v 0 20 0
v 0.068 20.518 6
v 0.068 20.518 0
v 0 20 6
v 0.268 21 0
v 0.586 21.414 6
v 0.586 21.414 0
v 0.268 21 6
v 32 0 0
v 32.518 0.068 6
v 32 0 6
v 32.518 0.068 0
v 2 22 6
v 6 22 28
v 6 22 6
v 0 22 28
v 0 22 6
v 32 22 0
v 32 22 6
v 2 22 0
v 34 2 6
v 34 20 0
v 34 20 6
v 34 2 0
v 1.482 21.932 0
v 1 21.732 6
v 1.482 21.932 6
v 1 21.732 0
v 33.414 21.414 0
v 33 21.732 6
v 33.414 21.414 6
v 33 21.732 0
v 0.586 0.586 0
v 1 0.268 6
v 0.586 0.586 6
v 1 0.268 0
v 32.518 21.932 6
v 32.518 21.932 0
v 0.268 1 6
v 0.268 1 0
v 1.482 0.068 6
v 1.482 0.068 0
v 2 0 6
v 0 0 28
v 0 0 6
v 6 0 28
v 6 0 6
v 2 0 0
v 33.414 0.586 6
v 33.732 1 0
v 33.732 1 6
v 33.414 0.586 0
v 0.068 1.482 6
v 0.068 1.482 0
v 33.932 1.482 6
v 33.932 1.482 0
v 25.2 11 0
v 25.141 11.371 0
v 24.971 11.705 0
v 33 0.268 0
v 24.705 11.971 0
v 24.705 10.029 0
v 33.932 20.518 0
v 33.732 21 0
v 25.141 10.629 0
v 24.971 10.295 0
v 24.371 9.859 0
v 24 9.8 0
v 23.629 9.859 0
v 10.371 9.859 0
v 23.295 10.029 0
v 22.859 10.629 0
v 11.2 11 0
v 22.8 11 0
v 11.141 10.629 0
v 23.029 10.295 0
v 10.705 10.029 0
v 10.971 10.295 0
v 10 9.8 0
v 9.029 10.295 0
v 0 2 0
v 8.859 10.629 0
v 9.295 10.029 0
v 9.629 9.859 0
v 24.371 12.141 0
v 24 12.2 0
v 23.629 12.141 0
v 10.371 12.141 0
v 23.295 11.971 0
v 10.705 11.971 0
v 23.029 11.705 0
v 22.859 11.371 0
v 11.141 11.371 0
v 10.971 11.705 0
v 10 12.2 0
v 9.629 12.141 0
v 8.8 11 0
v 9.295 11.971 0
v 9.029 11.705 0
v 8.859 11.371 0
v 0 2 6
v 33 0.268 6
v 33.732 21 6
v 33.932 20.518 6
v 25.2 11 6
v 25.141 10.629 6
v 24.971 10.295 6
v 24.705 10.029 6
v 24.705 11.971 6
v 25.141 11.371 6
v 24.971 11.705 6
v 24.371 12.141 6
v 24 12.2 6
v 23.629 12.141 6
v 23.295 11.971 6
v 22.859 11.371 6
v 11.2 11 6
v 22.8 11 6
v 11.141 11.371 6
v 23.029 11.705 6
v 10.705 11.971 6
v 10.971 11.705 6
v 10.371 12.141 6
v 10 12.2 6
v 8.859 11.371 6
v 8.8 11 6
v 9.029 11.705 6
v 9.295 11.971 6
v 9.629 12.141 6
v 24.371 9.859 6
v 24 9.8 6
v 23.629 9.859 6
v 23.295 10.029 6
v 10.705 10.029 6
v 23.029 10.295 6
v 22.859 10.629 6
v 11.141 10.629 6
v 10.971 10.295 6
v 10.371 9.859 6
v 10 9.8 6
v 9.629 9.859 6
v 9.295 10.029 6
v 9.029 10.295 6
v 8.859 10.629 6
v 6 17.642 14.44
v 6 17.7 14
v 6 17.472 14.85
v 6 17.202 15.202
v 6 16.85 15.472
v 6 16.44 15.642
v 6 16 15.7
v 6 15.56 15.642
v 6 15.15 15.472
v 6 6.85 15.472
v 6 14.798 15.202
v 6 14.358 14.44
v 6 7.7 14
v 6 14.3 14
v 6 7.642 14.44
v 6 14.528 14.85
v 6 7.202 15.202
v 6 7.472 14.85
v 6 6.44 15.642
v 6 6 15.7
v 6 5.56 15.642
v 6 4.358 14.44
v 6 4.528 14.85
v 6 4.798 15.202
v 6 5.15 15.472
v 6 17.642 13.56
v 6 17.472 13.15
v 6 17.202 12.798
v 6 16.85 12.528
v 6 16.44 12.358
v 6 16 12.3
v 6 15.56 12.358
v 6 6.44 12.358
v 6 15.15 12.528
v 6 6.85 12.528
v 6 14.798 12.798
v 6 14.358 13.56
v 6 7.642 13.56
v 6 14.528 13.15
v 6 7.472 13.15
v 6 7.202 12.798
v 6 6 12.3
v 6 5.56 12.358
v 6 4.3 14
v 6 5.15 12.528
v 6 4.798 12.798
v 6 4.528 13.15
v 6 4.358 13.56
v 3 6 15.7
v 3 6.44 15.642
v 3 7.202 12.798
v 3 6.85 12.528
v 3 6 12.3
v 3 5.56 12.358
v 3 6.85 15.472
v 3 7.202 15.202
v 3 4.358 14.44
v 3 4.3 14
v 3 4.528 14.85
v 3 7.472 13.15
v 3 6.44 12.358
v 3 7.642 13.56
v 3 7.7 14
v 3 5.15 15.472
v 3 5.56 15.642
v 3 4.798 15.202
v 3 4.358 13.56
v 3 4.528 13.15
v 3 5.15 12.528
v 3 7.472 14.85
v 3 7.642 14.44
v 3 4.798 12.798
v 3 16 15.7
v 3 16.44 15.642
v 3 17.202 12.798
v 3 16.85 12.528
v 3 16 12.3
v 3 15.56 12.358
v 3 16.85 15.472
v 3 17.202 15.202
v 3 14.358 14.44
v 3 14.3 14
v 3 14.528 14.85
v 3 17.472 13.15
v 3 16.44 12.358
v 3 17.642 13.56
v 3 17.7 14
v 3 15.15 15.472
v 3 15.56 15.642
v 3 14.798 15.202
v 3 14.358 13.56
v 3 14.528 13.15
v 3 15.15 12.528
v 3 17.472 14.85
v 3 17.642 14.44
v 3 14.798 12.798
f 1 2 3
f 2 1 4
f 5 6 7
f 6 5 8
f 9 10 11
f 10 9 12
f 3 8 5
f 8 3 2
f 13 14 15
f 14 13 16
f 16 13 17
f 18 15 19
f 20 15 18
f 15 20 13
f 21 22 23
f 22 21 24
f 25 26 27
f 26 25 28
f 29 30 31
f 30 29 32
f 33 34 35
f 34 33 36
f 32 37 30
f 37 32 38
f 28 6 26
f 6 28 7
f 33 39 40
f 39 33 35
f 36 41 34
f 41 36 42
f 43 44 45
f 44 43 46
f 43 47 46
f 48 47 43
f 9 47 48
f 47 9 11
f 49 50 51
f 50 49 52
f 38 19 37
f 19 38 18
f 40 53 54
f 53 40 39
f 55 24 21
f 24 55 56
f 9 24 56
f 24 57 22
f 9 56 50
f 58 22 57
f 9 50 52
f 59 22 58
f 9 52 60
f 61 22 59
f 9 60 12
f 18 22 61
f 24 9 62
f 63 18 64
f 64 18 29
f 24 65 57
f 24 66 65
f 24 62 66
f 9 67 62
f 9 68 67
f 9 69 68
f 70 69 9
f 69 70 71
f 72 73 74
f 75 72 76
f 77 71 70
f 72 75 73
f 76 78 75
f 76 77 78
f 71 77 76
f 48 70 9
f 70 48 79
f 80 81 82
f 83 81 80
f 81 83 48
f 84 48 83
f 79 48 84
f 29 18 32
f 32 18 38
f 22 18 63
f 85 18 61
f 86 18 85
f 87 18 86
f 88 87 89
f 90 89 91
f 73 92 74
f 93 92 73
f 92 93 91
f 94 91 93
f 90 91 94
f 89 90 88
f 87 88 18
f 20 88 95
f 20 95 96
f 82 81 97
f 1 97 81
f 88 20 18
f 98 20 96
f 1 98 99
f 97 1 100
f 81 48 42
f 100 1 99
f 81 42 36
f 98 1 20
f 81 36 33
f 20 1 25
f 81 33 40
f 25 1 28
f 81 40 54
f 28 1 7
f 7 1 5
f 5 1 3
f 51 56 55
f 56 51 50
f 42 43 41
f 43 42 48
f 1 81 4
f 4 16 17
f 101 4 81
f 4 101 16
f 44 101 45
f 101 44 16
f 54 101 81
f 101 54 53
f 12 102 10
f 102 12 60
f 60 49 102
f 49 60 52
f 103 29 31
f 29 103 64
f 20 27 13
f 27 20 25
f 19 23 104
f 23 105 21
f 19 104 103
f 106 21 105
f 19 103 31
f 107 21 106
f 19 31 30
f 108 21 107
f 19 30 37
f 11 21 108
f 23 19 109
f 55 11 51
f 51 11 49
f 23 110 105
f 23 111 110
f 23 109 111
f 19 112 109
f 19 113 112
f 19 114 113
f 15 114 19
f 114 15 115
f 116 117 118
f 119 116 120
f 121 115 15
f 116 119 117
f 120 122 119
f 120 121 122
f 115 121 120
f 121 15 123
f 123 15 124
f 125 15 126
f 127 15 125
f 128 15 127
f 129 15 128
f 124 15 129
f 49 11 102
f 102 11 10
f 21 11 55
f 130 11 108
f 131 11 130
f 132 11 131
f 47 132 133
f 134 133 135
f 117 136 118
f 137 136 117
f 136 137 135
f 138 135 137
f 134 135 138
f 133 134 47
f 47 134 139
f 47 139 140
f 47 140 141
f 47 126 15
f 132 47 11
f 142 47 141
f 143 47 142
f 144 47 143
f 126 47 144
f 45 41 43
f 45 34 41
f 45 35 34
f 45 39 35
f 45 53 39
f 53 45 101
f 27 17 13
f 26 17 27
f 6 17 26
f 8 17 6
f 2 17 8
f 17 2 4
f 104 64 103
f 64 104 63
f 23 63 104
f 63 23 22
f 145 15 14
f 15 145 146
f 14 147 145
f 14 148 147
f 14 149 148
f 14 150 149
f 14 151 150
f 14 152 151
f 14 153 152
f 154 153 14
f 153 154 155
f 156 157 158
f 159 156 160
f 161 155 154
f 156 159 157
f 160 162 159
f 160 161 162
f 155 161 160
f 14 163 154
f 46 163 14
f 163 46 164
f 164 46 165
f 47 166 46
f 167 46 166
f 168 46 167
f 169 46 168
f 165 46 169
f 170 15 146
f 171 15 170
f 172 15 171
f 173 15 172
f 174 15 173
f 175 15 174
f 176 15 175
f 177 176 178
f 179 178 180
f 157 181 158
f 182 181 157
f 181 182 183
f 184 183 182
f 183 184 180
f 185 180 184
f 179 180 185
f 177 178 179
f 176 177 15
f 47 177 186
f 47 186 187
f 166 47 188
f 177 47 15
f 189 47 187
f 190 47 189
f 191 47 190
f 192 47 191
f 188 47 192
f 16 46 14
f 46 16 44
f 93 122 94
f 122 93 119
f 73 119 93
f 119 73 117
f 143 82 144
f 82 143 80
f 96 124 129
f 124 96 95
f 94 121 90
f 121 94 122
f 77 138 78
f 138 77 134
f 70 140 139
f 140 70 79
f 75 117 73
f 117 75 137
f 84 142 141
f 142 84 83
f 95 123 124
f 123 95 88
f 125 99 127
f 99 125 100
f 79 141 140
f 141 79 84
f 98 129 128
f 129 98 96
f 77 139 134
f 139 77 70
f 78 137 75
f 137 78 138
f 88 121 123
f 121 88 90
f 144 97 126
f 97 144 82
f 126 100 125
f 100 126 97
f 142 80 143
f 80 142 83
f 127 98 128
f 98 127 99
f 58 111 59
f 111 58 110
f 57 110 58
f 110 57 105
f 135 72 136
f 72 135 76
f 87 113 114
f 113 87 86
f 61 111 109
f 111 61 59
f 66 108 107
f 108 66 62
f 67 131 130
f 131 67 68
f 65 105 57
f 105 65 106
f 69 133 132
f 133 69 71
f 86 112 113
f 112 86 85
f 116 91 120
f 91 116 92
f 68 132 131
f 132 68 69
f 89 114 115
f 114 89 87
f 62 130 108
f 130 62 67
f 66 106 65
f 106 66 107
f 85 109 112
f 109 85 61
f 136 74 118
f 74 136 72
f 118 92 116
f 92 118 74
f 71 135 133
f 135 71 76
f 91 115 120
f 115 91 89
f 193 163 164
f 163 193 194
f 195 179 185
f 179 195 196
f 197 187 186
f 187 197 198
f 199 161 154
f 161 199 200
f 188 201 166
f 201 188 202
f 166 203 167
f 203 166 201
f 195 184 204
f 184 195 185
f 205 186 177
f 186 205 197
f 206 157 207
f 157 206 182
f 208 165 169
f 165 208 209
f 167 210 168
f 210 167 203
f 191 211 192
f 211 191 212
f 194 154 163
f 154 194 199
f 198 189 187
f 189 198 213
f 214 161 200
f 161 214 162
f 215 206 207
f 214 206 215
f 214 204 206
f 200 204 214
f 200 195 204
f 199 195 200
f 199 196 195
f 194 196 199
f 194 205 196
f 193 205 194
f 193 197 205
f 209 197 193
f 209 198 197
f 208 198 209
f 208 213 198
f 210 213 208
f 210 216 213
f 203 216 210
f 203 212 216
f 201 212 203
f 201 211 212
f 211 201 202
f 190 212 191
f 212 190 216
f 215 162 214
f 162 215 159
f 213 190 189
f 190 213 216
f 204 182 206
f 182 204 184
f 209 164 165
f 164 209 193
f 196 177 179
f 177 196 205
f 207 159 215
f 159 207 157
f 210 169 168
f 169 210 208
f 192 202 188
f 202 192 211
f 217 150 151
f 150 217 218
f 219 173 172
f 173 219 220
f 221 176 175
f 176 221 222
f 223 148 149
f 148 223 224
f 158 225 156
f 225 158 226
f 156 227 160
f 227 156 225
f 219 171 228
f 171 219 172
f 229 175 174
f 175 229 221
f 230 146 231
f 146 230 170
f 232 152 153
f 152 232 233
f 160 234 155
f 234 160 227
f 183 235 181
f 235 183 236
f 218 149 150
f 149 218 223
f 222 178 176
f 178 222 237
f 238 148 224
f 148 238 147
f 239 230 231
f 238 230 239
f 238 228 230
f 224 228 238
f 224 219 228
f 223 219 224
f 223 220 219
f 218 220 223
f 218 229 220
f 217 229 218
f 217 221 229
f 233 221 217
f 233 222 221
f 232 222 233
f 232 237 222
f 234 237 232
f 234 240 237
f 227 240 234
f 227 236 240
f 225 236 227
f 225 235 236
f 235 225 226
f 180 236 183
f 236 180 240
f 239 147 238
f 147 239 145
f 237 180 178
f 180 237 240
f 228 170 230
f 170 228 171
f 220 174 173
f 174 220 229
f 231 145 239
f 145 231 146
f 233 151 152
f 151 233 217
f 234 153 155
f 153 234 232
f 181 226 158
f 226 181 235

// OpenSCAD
// file: 00_parameters.scad
// TenderCells DoorCell V1 shared parameters
// Units: millimeters

overall_w = 438;
overall_h = 368;
frame_depth = 56;

clear_w = 242;
clear_h = 312;

rail_thick = 32;
jamb_w = 48;
motor_jamb_w = 78;

// Printability targets
target_bed_xy = 220;
comfortable_part_max = 180;

// Modular frame split dimensions
top_seg_len = overall_w / 3;
bottom_seg_len = overall_w / 3;
left_jamb_seg_h = overall_h / 2;
right_lower_h = 118;
right_motor_h = 156;
right_upper_h = overall_h - right_lower_h - right_motor_h;

// Low-cost electronics envelope used by DoorCell V1.4.
// These dimensions are based on common generic modules, not a custom PCB.
esp32_board = [58, 31, 8];
drv8871_board = [31, 26, 7];
current_sensor_board = [26, 22, 7];
lm2596_board = [44, 22, 14];
inline_fuse_body = [45, 15, 14];
cn3065_board = [44, 24, 8];
electronics_clearance = 1.5;
controller_wall = 3;
controller_box_w = 170;
controller_box_h = 115;
controller_box_d = 46;
controller_lid_insert_offset = 11;
controller_m12_gland_d = 12.8;
controller_m10_gland_d = 10.6;
controller_m8_gland_d = 8.4;
controller_button_d = 16.2;

// Brass heat-set/push-in insert features.
insert_post_d = 8.0;
insert_post_h = 8.0;
insert_pilot_d = 4.6;
insert_pilot_depth = 6.5;
hold_down_screw_clearance = 3.4;

// Motor envelope for common 25GA/JGA25-370 gearmotors with optional encoder.
motor_body_d = 25.0;
motor_body_clearance_d = 27.2;
motor_body_len = 65;
motor_encoder_clearance = 16;
motor_mount_plate = [72, 92, 12];
motor_mount_cradle = [54, 74, 28];

// Optional solar add-on.
solar_panel_w = 145;
solar_panel_h = 145;
solar_panel_t = 4.0;
solar_panel_frame_border = 10;
solar_panel_frame_w = solar_panel_w + 2*solar_panel_frame_border;
solar_panel_frame_h = solar_panel_h + 2*solar_panel_frame_border;
solar_panel_back_depth = 14;
solar_panel_lip_overlap = 3;
solar_ball_d = 22;
solar_ball_socket_clearance = 0.45;
solar_mount_m5 = 5.4;

// Tongue-and-groove frame joints
// Fit target: common FDM printers with PETG/ASA.
// Clearance is per side, so sockets add 2x this value.
tongue_len = 18;
tongue_w = 22;
tongue_z = 10;
tongue_clearance_side = 0.25;
tongue_socket_depth_extra = 0.60;

door_w = 270;
door_h = 326;
door_t = 8;

track_gap = 11;
track_depth = 12;

// Rack-and-pinion drive
// Metric module gear math:
// circular_pitch = PI * module
// pitch_diameter = module * tooth_count
// outside_diameter = module * (tooth_count + 2)
// root_diameter = module * (tooth_count - 2.5)
gear_module = 2.0;
pressure_angle = 20;
gear_backlash = 0.20; // mm removed from rack tooth thickness at pitch line

pinion_teeth = 16;
pinion_pitch_d = gear_module * pinion_teeth;
pinion_pitch_radius = pinion_pitch_d / 2;
pinion_outer_d = gear_module * (pinion_teeth + 2);
pinion_outer_radius = pinion_outer_d / 2;
pinion_root_d = gear_module * (pinion_teeth - 2.5);
pinion_root_radius = pinion_root_d / 2;
pinion_thick = 12;
shaft_d = 6.2;

rack_tooth_count = 15;
rack_circular_pitch = 3.141592653589793 * gear_module;
rack_len = rack_circular_pitch * rack_tooth_count;
rack_w = 18;
rack_t = 6;
rack_addendum = gear_module;
rack_dedendum = 1.25 * gear_module;
rack_tooth_h = rack_addendum + rack_dedendum;
rack_pitch_line_z = rack_dedendum;
rack_tooth_pitch_thickness = rack_circular_pitch / 2 - gear_backlash;
rack_tooth_top_w = rack_tooth_pitch_thickness - 2 * rack_addendum * tan(pressure_angle);
rack_tooth_root_w = rack_tooth_pitch_thickness + 2 * rack_dedendum * tan(pressure_angle);

screw_m3 = 3.4;
screw_m4 = 4.5;
insert_m3 = 4.6;

eps = 0.01;

module rounded_box(size=[10,10,10], r=2) {
  hull() {
    translate([r,r,0]) cylinder(h=size[2], r=r, $fn=24);
    translate([size[0]-r,r,0]) cylinder(h=size[2], r=r, $fn=24);
    translate([r,size[1]-r,0]) cylinder(h=size[2], r=r, $fn=24);
    translate([size[0]-r,size[1]-r,0]) cylinder(h=size[2], r=r, $fn=24);
  }
}

module m3_clearance_hole(h=20) {
  cylinder(h=h, d=screw_m3, $fn=24);
}

module m4_clearance_hole(h=20) {
  cylinder(h=h, d=screw_m4, $fn=24);
}

module heat_insert_hole(h=6) {
  cylinder(h=h, d=insert_m3, $fn=24);
}

module heat_insert_post(h=insert_post_h, d=insert_post_d) {
  difference() {
    cylinder(h=h, d=d, $fn=32);
    translate([0,0,h-insert_pilot_depth+eps])
      cylinder(h=insert_pilot_depth+eps, d=insert_pilot_d, $fn=24);
  }
}

module m3_hold_down_slot(length=10, h=4) {
  hull() {
    translate([-length/2,0,0]) cylinder(h=h, d=hold_down_screw_clearance, $fn=20);
    translate([ length/2,0,0]) cylinder(h=h, d=hold_down_screw_clearance, $fn=20);
  }
}

module rail_channel(length=100) {
  cube([length, track_gap, track_depth]);
}

module frame_tongue_x() {
  rounded_box([tongue_len, tongue_w, tongue_z], r=1.5);
}

module frame_socket_x() {
  cube([
    tongue_len + tongue_socket_depth_extra,
    tongue_w + 2*tongue_clearance_side,
    tongue_z + 2*tongue_clearance_side
  ]);
}

module frame_tongue_y() {
  rounded_box([tongue_w, tongue_len, tongue_z], r=1.5);
}

module frame_socket_y() {
  cube([
    tongue_w + 2*tongue_clearance_side,
    tongue_len + tongue_socket_depth_extra,
    tongue_z + 2*tongue_clearance_side
  ]);
}

module rack_teeth(len=rack_len) {
  teeth = floor(len / rack_circular_pitch);
  for (i=[0:teeth-1]) {
    center = i*rack_circular_pitch + rack_circular_pitch/2;
    translate([0, 0, rack_t-0.20])
      linear_extrude(height=rack_w)
        polygon(points=[
          [center - rack_tooth_root_w/2, 0],
          [center + rack_tooth_root_w/2, 0],
          [center + rack_tooth_top_w/2, rack_tooth_h],
          [center - rack_tooth_top_w/2, rack_tooth_h]
        ]);
  }
}

function polar_point(r, a) = [r * cos(a), r * sin(a)];
// main file
include <00_parameters.scad>

difference() {
  union() {
    rounded_box([34, 22, 6], r=2);
    translate([0,0,6]) cube([6,22,22]);
  }

  // Switch screw holes
  for (x=[10, 24]) {
    translate([x,11,-eps]) cylinder(h=10, d=2.4, $fn=20);
  }

  // Frame mount holes
  translate([3,6,14]) rotate([0,90,0]) m3_clearance_hole(h=10);
  translate([3,16,14]) rotate([0,90,0]) m3_clearance_hole(h=10);
}
